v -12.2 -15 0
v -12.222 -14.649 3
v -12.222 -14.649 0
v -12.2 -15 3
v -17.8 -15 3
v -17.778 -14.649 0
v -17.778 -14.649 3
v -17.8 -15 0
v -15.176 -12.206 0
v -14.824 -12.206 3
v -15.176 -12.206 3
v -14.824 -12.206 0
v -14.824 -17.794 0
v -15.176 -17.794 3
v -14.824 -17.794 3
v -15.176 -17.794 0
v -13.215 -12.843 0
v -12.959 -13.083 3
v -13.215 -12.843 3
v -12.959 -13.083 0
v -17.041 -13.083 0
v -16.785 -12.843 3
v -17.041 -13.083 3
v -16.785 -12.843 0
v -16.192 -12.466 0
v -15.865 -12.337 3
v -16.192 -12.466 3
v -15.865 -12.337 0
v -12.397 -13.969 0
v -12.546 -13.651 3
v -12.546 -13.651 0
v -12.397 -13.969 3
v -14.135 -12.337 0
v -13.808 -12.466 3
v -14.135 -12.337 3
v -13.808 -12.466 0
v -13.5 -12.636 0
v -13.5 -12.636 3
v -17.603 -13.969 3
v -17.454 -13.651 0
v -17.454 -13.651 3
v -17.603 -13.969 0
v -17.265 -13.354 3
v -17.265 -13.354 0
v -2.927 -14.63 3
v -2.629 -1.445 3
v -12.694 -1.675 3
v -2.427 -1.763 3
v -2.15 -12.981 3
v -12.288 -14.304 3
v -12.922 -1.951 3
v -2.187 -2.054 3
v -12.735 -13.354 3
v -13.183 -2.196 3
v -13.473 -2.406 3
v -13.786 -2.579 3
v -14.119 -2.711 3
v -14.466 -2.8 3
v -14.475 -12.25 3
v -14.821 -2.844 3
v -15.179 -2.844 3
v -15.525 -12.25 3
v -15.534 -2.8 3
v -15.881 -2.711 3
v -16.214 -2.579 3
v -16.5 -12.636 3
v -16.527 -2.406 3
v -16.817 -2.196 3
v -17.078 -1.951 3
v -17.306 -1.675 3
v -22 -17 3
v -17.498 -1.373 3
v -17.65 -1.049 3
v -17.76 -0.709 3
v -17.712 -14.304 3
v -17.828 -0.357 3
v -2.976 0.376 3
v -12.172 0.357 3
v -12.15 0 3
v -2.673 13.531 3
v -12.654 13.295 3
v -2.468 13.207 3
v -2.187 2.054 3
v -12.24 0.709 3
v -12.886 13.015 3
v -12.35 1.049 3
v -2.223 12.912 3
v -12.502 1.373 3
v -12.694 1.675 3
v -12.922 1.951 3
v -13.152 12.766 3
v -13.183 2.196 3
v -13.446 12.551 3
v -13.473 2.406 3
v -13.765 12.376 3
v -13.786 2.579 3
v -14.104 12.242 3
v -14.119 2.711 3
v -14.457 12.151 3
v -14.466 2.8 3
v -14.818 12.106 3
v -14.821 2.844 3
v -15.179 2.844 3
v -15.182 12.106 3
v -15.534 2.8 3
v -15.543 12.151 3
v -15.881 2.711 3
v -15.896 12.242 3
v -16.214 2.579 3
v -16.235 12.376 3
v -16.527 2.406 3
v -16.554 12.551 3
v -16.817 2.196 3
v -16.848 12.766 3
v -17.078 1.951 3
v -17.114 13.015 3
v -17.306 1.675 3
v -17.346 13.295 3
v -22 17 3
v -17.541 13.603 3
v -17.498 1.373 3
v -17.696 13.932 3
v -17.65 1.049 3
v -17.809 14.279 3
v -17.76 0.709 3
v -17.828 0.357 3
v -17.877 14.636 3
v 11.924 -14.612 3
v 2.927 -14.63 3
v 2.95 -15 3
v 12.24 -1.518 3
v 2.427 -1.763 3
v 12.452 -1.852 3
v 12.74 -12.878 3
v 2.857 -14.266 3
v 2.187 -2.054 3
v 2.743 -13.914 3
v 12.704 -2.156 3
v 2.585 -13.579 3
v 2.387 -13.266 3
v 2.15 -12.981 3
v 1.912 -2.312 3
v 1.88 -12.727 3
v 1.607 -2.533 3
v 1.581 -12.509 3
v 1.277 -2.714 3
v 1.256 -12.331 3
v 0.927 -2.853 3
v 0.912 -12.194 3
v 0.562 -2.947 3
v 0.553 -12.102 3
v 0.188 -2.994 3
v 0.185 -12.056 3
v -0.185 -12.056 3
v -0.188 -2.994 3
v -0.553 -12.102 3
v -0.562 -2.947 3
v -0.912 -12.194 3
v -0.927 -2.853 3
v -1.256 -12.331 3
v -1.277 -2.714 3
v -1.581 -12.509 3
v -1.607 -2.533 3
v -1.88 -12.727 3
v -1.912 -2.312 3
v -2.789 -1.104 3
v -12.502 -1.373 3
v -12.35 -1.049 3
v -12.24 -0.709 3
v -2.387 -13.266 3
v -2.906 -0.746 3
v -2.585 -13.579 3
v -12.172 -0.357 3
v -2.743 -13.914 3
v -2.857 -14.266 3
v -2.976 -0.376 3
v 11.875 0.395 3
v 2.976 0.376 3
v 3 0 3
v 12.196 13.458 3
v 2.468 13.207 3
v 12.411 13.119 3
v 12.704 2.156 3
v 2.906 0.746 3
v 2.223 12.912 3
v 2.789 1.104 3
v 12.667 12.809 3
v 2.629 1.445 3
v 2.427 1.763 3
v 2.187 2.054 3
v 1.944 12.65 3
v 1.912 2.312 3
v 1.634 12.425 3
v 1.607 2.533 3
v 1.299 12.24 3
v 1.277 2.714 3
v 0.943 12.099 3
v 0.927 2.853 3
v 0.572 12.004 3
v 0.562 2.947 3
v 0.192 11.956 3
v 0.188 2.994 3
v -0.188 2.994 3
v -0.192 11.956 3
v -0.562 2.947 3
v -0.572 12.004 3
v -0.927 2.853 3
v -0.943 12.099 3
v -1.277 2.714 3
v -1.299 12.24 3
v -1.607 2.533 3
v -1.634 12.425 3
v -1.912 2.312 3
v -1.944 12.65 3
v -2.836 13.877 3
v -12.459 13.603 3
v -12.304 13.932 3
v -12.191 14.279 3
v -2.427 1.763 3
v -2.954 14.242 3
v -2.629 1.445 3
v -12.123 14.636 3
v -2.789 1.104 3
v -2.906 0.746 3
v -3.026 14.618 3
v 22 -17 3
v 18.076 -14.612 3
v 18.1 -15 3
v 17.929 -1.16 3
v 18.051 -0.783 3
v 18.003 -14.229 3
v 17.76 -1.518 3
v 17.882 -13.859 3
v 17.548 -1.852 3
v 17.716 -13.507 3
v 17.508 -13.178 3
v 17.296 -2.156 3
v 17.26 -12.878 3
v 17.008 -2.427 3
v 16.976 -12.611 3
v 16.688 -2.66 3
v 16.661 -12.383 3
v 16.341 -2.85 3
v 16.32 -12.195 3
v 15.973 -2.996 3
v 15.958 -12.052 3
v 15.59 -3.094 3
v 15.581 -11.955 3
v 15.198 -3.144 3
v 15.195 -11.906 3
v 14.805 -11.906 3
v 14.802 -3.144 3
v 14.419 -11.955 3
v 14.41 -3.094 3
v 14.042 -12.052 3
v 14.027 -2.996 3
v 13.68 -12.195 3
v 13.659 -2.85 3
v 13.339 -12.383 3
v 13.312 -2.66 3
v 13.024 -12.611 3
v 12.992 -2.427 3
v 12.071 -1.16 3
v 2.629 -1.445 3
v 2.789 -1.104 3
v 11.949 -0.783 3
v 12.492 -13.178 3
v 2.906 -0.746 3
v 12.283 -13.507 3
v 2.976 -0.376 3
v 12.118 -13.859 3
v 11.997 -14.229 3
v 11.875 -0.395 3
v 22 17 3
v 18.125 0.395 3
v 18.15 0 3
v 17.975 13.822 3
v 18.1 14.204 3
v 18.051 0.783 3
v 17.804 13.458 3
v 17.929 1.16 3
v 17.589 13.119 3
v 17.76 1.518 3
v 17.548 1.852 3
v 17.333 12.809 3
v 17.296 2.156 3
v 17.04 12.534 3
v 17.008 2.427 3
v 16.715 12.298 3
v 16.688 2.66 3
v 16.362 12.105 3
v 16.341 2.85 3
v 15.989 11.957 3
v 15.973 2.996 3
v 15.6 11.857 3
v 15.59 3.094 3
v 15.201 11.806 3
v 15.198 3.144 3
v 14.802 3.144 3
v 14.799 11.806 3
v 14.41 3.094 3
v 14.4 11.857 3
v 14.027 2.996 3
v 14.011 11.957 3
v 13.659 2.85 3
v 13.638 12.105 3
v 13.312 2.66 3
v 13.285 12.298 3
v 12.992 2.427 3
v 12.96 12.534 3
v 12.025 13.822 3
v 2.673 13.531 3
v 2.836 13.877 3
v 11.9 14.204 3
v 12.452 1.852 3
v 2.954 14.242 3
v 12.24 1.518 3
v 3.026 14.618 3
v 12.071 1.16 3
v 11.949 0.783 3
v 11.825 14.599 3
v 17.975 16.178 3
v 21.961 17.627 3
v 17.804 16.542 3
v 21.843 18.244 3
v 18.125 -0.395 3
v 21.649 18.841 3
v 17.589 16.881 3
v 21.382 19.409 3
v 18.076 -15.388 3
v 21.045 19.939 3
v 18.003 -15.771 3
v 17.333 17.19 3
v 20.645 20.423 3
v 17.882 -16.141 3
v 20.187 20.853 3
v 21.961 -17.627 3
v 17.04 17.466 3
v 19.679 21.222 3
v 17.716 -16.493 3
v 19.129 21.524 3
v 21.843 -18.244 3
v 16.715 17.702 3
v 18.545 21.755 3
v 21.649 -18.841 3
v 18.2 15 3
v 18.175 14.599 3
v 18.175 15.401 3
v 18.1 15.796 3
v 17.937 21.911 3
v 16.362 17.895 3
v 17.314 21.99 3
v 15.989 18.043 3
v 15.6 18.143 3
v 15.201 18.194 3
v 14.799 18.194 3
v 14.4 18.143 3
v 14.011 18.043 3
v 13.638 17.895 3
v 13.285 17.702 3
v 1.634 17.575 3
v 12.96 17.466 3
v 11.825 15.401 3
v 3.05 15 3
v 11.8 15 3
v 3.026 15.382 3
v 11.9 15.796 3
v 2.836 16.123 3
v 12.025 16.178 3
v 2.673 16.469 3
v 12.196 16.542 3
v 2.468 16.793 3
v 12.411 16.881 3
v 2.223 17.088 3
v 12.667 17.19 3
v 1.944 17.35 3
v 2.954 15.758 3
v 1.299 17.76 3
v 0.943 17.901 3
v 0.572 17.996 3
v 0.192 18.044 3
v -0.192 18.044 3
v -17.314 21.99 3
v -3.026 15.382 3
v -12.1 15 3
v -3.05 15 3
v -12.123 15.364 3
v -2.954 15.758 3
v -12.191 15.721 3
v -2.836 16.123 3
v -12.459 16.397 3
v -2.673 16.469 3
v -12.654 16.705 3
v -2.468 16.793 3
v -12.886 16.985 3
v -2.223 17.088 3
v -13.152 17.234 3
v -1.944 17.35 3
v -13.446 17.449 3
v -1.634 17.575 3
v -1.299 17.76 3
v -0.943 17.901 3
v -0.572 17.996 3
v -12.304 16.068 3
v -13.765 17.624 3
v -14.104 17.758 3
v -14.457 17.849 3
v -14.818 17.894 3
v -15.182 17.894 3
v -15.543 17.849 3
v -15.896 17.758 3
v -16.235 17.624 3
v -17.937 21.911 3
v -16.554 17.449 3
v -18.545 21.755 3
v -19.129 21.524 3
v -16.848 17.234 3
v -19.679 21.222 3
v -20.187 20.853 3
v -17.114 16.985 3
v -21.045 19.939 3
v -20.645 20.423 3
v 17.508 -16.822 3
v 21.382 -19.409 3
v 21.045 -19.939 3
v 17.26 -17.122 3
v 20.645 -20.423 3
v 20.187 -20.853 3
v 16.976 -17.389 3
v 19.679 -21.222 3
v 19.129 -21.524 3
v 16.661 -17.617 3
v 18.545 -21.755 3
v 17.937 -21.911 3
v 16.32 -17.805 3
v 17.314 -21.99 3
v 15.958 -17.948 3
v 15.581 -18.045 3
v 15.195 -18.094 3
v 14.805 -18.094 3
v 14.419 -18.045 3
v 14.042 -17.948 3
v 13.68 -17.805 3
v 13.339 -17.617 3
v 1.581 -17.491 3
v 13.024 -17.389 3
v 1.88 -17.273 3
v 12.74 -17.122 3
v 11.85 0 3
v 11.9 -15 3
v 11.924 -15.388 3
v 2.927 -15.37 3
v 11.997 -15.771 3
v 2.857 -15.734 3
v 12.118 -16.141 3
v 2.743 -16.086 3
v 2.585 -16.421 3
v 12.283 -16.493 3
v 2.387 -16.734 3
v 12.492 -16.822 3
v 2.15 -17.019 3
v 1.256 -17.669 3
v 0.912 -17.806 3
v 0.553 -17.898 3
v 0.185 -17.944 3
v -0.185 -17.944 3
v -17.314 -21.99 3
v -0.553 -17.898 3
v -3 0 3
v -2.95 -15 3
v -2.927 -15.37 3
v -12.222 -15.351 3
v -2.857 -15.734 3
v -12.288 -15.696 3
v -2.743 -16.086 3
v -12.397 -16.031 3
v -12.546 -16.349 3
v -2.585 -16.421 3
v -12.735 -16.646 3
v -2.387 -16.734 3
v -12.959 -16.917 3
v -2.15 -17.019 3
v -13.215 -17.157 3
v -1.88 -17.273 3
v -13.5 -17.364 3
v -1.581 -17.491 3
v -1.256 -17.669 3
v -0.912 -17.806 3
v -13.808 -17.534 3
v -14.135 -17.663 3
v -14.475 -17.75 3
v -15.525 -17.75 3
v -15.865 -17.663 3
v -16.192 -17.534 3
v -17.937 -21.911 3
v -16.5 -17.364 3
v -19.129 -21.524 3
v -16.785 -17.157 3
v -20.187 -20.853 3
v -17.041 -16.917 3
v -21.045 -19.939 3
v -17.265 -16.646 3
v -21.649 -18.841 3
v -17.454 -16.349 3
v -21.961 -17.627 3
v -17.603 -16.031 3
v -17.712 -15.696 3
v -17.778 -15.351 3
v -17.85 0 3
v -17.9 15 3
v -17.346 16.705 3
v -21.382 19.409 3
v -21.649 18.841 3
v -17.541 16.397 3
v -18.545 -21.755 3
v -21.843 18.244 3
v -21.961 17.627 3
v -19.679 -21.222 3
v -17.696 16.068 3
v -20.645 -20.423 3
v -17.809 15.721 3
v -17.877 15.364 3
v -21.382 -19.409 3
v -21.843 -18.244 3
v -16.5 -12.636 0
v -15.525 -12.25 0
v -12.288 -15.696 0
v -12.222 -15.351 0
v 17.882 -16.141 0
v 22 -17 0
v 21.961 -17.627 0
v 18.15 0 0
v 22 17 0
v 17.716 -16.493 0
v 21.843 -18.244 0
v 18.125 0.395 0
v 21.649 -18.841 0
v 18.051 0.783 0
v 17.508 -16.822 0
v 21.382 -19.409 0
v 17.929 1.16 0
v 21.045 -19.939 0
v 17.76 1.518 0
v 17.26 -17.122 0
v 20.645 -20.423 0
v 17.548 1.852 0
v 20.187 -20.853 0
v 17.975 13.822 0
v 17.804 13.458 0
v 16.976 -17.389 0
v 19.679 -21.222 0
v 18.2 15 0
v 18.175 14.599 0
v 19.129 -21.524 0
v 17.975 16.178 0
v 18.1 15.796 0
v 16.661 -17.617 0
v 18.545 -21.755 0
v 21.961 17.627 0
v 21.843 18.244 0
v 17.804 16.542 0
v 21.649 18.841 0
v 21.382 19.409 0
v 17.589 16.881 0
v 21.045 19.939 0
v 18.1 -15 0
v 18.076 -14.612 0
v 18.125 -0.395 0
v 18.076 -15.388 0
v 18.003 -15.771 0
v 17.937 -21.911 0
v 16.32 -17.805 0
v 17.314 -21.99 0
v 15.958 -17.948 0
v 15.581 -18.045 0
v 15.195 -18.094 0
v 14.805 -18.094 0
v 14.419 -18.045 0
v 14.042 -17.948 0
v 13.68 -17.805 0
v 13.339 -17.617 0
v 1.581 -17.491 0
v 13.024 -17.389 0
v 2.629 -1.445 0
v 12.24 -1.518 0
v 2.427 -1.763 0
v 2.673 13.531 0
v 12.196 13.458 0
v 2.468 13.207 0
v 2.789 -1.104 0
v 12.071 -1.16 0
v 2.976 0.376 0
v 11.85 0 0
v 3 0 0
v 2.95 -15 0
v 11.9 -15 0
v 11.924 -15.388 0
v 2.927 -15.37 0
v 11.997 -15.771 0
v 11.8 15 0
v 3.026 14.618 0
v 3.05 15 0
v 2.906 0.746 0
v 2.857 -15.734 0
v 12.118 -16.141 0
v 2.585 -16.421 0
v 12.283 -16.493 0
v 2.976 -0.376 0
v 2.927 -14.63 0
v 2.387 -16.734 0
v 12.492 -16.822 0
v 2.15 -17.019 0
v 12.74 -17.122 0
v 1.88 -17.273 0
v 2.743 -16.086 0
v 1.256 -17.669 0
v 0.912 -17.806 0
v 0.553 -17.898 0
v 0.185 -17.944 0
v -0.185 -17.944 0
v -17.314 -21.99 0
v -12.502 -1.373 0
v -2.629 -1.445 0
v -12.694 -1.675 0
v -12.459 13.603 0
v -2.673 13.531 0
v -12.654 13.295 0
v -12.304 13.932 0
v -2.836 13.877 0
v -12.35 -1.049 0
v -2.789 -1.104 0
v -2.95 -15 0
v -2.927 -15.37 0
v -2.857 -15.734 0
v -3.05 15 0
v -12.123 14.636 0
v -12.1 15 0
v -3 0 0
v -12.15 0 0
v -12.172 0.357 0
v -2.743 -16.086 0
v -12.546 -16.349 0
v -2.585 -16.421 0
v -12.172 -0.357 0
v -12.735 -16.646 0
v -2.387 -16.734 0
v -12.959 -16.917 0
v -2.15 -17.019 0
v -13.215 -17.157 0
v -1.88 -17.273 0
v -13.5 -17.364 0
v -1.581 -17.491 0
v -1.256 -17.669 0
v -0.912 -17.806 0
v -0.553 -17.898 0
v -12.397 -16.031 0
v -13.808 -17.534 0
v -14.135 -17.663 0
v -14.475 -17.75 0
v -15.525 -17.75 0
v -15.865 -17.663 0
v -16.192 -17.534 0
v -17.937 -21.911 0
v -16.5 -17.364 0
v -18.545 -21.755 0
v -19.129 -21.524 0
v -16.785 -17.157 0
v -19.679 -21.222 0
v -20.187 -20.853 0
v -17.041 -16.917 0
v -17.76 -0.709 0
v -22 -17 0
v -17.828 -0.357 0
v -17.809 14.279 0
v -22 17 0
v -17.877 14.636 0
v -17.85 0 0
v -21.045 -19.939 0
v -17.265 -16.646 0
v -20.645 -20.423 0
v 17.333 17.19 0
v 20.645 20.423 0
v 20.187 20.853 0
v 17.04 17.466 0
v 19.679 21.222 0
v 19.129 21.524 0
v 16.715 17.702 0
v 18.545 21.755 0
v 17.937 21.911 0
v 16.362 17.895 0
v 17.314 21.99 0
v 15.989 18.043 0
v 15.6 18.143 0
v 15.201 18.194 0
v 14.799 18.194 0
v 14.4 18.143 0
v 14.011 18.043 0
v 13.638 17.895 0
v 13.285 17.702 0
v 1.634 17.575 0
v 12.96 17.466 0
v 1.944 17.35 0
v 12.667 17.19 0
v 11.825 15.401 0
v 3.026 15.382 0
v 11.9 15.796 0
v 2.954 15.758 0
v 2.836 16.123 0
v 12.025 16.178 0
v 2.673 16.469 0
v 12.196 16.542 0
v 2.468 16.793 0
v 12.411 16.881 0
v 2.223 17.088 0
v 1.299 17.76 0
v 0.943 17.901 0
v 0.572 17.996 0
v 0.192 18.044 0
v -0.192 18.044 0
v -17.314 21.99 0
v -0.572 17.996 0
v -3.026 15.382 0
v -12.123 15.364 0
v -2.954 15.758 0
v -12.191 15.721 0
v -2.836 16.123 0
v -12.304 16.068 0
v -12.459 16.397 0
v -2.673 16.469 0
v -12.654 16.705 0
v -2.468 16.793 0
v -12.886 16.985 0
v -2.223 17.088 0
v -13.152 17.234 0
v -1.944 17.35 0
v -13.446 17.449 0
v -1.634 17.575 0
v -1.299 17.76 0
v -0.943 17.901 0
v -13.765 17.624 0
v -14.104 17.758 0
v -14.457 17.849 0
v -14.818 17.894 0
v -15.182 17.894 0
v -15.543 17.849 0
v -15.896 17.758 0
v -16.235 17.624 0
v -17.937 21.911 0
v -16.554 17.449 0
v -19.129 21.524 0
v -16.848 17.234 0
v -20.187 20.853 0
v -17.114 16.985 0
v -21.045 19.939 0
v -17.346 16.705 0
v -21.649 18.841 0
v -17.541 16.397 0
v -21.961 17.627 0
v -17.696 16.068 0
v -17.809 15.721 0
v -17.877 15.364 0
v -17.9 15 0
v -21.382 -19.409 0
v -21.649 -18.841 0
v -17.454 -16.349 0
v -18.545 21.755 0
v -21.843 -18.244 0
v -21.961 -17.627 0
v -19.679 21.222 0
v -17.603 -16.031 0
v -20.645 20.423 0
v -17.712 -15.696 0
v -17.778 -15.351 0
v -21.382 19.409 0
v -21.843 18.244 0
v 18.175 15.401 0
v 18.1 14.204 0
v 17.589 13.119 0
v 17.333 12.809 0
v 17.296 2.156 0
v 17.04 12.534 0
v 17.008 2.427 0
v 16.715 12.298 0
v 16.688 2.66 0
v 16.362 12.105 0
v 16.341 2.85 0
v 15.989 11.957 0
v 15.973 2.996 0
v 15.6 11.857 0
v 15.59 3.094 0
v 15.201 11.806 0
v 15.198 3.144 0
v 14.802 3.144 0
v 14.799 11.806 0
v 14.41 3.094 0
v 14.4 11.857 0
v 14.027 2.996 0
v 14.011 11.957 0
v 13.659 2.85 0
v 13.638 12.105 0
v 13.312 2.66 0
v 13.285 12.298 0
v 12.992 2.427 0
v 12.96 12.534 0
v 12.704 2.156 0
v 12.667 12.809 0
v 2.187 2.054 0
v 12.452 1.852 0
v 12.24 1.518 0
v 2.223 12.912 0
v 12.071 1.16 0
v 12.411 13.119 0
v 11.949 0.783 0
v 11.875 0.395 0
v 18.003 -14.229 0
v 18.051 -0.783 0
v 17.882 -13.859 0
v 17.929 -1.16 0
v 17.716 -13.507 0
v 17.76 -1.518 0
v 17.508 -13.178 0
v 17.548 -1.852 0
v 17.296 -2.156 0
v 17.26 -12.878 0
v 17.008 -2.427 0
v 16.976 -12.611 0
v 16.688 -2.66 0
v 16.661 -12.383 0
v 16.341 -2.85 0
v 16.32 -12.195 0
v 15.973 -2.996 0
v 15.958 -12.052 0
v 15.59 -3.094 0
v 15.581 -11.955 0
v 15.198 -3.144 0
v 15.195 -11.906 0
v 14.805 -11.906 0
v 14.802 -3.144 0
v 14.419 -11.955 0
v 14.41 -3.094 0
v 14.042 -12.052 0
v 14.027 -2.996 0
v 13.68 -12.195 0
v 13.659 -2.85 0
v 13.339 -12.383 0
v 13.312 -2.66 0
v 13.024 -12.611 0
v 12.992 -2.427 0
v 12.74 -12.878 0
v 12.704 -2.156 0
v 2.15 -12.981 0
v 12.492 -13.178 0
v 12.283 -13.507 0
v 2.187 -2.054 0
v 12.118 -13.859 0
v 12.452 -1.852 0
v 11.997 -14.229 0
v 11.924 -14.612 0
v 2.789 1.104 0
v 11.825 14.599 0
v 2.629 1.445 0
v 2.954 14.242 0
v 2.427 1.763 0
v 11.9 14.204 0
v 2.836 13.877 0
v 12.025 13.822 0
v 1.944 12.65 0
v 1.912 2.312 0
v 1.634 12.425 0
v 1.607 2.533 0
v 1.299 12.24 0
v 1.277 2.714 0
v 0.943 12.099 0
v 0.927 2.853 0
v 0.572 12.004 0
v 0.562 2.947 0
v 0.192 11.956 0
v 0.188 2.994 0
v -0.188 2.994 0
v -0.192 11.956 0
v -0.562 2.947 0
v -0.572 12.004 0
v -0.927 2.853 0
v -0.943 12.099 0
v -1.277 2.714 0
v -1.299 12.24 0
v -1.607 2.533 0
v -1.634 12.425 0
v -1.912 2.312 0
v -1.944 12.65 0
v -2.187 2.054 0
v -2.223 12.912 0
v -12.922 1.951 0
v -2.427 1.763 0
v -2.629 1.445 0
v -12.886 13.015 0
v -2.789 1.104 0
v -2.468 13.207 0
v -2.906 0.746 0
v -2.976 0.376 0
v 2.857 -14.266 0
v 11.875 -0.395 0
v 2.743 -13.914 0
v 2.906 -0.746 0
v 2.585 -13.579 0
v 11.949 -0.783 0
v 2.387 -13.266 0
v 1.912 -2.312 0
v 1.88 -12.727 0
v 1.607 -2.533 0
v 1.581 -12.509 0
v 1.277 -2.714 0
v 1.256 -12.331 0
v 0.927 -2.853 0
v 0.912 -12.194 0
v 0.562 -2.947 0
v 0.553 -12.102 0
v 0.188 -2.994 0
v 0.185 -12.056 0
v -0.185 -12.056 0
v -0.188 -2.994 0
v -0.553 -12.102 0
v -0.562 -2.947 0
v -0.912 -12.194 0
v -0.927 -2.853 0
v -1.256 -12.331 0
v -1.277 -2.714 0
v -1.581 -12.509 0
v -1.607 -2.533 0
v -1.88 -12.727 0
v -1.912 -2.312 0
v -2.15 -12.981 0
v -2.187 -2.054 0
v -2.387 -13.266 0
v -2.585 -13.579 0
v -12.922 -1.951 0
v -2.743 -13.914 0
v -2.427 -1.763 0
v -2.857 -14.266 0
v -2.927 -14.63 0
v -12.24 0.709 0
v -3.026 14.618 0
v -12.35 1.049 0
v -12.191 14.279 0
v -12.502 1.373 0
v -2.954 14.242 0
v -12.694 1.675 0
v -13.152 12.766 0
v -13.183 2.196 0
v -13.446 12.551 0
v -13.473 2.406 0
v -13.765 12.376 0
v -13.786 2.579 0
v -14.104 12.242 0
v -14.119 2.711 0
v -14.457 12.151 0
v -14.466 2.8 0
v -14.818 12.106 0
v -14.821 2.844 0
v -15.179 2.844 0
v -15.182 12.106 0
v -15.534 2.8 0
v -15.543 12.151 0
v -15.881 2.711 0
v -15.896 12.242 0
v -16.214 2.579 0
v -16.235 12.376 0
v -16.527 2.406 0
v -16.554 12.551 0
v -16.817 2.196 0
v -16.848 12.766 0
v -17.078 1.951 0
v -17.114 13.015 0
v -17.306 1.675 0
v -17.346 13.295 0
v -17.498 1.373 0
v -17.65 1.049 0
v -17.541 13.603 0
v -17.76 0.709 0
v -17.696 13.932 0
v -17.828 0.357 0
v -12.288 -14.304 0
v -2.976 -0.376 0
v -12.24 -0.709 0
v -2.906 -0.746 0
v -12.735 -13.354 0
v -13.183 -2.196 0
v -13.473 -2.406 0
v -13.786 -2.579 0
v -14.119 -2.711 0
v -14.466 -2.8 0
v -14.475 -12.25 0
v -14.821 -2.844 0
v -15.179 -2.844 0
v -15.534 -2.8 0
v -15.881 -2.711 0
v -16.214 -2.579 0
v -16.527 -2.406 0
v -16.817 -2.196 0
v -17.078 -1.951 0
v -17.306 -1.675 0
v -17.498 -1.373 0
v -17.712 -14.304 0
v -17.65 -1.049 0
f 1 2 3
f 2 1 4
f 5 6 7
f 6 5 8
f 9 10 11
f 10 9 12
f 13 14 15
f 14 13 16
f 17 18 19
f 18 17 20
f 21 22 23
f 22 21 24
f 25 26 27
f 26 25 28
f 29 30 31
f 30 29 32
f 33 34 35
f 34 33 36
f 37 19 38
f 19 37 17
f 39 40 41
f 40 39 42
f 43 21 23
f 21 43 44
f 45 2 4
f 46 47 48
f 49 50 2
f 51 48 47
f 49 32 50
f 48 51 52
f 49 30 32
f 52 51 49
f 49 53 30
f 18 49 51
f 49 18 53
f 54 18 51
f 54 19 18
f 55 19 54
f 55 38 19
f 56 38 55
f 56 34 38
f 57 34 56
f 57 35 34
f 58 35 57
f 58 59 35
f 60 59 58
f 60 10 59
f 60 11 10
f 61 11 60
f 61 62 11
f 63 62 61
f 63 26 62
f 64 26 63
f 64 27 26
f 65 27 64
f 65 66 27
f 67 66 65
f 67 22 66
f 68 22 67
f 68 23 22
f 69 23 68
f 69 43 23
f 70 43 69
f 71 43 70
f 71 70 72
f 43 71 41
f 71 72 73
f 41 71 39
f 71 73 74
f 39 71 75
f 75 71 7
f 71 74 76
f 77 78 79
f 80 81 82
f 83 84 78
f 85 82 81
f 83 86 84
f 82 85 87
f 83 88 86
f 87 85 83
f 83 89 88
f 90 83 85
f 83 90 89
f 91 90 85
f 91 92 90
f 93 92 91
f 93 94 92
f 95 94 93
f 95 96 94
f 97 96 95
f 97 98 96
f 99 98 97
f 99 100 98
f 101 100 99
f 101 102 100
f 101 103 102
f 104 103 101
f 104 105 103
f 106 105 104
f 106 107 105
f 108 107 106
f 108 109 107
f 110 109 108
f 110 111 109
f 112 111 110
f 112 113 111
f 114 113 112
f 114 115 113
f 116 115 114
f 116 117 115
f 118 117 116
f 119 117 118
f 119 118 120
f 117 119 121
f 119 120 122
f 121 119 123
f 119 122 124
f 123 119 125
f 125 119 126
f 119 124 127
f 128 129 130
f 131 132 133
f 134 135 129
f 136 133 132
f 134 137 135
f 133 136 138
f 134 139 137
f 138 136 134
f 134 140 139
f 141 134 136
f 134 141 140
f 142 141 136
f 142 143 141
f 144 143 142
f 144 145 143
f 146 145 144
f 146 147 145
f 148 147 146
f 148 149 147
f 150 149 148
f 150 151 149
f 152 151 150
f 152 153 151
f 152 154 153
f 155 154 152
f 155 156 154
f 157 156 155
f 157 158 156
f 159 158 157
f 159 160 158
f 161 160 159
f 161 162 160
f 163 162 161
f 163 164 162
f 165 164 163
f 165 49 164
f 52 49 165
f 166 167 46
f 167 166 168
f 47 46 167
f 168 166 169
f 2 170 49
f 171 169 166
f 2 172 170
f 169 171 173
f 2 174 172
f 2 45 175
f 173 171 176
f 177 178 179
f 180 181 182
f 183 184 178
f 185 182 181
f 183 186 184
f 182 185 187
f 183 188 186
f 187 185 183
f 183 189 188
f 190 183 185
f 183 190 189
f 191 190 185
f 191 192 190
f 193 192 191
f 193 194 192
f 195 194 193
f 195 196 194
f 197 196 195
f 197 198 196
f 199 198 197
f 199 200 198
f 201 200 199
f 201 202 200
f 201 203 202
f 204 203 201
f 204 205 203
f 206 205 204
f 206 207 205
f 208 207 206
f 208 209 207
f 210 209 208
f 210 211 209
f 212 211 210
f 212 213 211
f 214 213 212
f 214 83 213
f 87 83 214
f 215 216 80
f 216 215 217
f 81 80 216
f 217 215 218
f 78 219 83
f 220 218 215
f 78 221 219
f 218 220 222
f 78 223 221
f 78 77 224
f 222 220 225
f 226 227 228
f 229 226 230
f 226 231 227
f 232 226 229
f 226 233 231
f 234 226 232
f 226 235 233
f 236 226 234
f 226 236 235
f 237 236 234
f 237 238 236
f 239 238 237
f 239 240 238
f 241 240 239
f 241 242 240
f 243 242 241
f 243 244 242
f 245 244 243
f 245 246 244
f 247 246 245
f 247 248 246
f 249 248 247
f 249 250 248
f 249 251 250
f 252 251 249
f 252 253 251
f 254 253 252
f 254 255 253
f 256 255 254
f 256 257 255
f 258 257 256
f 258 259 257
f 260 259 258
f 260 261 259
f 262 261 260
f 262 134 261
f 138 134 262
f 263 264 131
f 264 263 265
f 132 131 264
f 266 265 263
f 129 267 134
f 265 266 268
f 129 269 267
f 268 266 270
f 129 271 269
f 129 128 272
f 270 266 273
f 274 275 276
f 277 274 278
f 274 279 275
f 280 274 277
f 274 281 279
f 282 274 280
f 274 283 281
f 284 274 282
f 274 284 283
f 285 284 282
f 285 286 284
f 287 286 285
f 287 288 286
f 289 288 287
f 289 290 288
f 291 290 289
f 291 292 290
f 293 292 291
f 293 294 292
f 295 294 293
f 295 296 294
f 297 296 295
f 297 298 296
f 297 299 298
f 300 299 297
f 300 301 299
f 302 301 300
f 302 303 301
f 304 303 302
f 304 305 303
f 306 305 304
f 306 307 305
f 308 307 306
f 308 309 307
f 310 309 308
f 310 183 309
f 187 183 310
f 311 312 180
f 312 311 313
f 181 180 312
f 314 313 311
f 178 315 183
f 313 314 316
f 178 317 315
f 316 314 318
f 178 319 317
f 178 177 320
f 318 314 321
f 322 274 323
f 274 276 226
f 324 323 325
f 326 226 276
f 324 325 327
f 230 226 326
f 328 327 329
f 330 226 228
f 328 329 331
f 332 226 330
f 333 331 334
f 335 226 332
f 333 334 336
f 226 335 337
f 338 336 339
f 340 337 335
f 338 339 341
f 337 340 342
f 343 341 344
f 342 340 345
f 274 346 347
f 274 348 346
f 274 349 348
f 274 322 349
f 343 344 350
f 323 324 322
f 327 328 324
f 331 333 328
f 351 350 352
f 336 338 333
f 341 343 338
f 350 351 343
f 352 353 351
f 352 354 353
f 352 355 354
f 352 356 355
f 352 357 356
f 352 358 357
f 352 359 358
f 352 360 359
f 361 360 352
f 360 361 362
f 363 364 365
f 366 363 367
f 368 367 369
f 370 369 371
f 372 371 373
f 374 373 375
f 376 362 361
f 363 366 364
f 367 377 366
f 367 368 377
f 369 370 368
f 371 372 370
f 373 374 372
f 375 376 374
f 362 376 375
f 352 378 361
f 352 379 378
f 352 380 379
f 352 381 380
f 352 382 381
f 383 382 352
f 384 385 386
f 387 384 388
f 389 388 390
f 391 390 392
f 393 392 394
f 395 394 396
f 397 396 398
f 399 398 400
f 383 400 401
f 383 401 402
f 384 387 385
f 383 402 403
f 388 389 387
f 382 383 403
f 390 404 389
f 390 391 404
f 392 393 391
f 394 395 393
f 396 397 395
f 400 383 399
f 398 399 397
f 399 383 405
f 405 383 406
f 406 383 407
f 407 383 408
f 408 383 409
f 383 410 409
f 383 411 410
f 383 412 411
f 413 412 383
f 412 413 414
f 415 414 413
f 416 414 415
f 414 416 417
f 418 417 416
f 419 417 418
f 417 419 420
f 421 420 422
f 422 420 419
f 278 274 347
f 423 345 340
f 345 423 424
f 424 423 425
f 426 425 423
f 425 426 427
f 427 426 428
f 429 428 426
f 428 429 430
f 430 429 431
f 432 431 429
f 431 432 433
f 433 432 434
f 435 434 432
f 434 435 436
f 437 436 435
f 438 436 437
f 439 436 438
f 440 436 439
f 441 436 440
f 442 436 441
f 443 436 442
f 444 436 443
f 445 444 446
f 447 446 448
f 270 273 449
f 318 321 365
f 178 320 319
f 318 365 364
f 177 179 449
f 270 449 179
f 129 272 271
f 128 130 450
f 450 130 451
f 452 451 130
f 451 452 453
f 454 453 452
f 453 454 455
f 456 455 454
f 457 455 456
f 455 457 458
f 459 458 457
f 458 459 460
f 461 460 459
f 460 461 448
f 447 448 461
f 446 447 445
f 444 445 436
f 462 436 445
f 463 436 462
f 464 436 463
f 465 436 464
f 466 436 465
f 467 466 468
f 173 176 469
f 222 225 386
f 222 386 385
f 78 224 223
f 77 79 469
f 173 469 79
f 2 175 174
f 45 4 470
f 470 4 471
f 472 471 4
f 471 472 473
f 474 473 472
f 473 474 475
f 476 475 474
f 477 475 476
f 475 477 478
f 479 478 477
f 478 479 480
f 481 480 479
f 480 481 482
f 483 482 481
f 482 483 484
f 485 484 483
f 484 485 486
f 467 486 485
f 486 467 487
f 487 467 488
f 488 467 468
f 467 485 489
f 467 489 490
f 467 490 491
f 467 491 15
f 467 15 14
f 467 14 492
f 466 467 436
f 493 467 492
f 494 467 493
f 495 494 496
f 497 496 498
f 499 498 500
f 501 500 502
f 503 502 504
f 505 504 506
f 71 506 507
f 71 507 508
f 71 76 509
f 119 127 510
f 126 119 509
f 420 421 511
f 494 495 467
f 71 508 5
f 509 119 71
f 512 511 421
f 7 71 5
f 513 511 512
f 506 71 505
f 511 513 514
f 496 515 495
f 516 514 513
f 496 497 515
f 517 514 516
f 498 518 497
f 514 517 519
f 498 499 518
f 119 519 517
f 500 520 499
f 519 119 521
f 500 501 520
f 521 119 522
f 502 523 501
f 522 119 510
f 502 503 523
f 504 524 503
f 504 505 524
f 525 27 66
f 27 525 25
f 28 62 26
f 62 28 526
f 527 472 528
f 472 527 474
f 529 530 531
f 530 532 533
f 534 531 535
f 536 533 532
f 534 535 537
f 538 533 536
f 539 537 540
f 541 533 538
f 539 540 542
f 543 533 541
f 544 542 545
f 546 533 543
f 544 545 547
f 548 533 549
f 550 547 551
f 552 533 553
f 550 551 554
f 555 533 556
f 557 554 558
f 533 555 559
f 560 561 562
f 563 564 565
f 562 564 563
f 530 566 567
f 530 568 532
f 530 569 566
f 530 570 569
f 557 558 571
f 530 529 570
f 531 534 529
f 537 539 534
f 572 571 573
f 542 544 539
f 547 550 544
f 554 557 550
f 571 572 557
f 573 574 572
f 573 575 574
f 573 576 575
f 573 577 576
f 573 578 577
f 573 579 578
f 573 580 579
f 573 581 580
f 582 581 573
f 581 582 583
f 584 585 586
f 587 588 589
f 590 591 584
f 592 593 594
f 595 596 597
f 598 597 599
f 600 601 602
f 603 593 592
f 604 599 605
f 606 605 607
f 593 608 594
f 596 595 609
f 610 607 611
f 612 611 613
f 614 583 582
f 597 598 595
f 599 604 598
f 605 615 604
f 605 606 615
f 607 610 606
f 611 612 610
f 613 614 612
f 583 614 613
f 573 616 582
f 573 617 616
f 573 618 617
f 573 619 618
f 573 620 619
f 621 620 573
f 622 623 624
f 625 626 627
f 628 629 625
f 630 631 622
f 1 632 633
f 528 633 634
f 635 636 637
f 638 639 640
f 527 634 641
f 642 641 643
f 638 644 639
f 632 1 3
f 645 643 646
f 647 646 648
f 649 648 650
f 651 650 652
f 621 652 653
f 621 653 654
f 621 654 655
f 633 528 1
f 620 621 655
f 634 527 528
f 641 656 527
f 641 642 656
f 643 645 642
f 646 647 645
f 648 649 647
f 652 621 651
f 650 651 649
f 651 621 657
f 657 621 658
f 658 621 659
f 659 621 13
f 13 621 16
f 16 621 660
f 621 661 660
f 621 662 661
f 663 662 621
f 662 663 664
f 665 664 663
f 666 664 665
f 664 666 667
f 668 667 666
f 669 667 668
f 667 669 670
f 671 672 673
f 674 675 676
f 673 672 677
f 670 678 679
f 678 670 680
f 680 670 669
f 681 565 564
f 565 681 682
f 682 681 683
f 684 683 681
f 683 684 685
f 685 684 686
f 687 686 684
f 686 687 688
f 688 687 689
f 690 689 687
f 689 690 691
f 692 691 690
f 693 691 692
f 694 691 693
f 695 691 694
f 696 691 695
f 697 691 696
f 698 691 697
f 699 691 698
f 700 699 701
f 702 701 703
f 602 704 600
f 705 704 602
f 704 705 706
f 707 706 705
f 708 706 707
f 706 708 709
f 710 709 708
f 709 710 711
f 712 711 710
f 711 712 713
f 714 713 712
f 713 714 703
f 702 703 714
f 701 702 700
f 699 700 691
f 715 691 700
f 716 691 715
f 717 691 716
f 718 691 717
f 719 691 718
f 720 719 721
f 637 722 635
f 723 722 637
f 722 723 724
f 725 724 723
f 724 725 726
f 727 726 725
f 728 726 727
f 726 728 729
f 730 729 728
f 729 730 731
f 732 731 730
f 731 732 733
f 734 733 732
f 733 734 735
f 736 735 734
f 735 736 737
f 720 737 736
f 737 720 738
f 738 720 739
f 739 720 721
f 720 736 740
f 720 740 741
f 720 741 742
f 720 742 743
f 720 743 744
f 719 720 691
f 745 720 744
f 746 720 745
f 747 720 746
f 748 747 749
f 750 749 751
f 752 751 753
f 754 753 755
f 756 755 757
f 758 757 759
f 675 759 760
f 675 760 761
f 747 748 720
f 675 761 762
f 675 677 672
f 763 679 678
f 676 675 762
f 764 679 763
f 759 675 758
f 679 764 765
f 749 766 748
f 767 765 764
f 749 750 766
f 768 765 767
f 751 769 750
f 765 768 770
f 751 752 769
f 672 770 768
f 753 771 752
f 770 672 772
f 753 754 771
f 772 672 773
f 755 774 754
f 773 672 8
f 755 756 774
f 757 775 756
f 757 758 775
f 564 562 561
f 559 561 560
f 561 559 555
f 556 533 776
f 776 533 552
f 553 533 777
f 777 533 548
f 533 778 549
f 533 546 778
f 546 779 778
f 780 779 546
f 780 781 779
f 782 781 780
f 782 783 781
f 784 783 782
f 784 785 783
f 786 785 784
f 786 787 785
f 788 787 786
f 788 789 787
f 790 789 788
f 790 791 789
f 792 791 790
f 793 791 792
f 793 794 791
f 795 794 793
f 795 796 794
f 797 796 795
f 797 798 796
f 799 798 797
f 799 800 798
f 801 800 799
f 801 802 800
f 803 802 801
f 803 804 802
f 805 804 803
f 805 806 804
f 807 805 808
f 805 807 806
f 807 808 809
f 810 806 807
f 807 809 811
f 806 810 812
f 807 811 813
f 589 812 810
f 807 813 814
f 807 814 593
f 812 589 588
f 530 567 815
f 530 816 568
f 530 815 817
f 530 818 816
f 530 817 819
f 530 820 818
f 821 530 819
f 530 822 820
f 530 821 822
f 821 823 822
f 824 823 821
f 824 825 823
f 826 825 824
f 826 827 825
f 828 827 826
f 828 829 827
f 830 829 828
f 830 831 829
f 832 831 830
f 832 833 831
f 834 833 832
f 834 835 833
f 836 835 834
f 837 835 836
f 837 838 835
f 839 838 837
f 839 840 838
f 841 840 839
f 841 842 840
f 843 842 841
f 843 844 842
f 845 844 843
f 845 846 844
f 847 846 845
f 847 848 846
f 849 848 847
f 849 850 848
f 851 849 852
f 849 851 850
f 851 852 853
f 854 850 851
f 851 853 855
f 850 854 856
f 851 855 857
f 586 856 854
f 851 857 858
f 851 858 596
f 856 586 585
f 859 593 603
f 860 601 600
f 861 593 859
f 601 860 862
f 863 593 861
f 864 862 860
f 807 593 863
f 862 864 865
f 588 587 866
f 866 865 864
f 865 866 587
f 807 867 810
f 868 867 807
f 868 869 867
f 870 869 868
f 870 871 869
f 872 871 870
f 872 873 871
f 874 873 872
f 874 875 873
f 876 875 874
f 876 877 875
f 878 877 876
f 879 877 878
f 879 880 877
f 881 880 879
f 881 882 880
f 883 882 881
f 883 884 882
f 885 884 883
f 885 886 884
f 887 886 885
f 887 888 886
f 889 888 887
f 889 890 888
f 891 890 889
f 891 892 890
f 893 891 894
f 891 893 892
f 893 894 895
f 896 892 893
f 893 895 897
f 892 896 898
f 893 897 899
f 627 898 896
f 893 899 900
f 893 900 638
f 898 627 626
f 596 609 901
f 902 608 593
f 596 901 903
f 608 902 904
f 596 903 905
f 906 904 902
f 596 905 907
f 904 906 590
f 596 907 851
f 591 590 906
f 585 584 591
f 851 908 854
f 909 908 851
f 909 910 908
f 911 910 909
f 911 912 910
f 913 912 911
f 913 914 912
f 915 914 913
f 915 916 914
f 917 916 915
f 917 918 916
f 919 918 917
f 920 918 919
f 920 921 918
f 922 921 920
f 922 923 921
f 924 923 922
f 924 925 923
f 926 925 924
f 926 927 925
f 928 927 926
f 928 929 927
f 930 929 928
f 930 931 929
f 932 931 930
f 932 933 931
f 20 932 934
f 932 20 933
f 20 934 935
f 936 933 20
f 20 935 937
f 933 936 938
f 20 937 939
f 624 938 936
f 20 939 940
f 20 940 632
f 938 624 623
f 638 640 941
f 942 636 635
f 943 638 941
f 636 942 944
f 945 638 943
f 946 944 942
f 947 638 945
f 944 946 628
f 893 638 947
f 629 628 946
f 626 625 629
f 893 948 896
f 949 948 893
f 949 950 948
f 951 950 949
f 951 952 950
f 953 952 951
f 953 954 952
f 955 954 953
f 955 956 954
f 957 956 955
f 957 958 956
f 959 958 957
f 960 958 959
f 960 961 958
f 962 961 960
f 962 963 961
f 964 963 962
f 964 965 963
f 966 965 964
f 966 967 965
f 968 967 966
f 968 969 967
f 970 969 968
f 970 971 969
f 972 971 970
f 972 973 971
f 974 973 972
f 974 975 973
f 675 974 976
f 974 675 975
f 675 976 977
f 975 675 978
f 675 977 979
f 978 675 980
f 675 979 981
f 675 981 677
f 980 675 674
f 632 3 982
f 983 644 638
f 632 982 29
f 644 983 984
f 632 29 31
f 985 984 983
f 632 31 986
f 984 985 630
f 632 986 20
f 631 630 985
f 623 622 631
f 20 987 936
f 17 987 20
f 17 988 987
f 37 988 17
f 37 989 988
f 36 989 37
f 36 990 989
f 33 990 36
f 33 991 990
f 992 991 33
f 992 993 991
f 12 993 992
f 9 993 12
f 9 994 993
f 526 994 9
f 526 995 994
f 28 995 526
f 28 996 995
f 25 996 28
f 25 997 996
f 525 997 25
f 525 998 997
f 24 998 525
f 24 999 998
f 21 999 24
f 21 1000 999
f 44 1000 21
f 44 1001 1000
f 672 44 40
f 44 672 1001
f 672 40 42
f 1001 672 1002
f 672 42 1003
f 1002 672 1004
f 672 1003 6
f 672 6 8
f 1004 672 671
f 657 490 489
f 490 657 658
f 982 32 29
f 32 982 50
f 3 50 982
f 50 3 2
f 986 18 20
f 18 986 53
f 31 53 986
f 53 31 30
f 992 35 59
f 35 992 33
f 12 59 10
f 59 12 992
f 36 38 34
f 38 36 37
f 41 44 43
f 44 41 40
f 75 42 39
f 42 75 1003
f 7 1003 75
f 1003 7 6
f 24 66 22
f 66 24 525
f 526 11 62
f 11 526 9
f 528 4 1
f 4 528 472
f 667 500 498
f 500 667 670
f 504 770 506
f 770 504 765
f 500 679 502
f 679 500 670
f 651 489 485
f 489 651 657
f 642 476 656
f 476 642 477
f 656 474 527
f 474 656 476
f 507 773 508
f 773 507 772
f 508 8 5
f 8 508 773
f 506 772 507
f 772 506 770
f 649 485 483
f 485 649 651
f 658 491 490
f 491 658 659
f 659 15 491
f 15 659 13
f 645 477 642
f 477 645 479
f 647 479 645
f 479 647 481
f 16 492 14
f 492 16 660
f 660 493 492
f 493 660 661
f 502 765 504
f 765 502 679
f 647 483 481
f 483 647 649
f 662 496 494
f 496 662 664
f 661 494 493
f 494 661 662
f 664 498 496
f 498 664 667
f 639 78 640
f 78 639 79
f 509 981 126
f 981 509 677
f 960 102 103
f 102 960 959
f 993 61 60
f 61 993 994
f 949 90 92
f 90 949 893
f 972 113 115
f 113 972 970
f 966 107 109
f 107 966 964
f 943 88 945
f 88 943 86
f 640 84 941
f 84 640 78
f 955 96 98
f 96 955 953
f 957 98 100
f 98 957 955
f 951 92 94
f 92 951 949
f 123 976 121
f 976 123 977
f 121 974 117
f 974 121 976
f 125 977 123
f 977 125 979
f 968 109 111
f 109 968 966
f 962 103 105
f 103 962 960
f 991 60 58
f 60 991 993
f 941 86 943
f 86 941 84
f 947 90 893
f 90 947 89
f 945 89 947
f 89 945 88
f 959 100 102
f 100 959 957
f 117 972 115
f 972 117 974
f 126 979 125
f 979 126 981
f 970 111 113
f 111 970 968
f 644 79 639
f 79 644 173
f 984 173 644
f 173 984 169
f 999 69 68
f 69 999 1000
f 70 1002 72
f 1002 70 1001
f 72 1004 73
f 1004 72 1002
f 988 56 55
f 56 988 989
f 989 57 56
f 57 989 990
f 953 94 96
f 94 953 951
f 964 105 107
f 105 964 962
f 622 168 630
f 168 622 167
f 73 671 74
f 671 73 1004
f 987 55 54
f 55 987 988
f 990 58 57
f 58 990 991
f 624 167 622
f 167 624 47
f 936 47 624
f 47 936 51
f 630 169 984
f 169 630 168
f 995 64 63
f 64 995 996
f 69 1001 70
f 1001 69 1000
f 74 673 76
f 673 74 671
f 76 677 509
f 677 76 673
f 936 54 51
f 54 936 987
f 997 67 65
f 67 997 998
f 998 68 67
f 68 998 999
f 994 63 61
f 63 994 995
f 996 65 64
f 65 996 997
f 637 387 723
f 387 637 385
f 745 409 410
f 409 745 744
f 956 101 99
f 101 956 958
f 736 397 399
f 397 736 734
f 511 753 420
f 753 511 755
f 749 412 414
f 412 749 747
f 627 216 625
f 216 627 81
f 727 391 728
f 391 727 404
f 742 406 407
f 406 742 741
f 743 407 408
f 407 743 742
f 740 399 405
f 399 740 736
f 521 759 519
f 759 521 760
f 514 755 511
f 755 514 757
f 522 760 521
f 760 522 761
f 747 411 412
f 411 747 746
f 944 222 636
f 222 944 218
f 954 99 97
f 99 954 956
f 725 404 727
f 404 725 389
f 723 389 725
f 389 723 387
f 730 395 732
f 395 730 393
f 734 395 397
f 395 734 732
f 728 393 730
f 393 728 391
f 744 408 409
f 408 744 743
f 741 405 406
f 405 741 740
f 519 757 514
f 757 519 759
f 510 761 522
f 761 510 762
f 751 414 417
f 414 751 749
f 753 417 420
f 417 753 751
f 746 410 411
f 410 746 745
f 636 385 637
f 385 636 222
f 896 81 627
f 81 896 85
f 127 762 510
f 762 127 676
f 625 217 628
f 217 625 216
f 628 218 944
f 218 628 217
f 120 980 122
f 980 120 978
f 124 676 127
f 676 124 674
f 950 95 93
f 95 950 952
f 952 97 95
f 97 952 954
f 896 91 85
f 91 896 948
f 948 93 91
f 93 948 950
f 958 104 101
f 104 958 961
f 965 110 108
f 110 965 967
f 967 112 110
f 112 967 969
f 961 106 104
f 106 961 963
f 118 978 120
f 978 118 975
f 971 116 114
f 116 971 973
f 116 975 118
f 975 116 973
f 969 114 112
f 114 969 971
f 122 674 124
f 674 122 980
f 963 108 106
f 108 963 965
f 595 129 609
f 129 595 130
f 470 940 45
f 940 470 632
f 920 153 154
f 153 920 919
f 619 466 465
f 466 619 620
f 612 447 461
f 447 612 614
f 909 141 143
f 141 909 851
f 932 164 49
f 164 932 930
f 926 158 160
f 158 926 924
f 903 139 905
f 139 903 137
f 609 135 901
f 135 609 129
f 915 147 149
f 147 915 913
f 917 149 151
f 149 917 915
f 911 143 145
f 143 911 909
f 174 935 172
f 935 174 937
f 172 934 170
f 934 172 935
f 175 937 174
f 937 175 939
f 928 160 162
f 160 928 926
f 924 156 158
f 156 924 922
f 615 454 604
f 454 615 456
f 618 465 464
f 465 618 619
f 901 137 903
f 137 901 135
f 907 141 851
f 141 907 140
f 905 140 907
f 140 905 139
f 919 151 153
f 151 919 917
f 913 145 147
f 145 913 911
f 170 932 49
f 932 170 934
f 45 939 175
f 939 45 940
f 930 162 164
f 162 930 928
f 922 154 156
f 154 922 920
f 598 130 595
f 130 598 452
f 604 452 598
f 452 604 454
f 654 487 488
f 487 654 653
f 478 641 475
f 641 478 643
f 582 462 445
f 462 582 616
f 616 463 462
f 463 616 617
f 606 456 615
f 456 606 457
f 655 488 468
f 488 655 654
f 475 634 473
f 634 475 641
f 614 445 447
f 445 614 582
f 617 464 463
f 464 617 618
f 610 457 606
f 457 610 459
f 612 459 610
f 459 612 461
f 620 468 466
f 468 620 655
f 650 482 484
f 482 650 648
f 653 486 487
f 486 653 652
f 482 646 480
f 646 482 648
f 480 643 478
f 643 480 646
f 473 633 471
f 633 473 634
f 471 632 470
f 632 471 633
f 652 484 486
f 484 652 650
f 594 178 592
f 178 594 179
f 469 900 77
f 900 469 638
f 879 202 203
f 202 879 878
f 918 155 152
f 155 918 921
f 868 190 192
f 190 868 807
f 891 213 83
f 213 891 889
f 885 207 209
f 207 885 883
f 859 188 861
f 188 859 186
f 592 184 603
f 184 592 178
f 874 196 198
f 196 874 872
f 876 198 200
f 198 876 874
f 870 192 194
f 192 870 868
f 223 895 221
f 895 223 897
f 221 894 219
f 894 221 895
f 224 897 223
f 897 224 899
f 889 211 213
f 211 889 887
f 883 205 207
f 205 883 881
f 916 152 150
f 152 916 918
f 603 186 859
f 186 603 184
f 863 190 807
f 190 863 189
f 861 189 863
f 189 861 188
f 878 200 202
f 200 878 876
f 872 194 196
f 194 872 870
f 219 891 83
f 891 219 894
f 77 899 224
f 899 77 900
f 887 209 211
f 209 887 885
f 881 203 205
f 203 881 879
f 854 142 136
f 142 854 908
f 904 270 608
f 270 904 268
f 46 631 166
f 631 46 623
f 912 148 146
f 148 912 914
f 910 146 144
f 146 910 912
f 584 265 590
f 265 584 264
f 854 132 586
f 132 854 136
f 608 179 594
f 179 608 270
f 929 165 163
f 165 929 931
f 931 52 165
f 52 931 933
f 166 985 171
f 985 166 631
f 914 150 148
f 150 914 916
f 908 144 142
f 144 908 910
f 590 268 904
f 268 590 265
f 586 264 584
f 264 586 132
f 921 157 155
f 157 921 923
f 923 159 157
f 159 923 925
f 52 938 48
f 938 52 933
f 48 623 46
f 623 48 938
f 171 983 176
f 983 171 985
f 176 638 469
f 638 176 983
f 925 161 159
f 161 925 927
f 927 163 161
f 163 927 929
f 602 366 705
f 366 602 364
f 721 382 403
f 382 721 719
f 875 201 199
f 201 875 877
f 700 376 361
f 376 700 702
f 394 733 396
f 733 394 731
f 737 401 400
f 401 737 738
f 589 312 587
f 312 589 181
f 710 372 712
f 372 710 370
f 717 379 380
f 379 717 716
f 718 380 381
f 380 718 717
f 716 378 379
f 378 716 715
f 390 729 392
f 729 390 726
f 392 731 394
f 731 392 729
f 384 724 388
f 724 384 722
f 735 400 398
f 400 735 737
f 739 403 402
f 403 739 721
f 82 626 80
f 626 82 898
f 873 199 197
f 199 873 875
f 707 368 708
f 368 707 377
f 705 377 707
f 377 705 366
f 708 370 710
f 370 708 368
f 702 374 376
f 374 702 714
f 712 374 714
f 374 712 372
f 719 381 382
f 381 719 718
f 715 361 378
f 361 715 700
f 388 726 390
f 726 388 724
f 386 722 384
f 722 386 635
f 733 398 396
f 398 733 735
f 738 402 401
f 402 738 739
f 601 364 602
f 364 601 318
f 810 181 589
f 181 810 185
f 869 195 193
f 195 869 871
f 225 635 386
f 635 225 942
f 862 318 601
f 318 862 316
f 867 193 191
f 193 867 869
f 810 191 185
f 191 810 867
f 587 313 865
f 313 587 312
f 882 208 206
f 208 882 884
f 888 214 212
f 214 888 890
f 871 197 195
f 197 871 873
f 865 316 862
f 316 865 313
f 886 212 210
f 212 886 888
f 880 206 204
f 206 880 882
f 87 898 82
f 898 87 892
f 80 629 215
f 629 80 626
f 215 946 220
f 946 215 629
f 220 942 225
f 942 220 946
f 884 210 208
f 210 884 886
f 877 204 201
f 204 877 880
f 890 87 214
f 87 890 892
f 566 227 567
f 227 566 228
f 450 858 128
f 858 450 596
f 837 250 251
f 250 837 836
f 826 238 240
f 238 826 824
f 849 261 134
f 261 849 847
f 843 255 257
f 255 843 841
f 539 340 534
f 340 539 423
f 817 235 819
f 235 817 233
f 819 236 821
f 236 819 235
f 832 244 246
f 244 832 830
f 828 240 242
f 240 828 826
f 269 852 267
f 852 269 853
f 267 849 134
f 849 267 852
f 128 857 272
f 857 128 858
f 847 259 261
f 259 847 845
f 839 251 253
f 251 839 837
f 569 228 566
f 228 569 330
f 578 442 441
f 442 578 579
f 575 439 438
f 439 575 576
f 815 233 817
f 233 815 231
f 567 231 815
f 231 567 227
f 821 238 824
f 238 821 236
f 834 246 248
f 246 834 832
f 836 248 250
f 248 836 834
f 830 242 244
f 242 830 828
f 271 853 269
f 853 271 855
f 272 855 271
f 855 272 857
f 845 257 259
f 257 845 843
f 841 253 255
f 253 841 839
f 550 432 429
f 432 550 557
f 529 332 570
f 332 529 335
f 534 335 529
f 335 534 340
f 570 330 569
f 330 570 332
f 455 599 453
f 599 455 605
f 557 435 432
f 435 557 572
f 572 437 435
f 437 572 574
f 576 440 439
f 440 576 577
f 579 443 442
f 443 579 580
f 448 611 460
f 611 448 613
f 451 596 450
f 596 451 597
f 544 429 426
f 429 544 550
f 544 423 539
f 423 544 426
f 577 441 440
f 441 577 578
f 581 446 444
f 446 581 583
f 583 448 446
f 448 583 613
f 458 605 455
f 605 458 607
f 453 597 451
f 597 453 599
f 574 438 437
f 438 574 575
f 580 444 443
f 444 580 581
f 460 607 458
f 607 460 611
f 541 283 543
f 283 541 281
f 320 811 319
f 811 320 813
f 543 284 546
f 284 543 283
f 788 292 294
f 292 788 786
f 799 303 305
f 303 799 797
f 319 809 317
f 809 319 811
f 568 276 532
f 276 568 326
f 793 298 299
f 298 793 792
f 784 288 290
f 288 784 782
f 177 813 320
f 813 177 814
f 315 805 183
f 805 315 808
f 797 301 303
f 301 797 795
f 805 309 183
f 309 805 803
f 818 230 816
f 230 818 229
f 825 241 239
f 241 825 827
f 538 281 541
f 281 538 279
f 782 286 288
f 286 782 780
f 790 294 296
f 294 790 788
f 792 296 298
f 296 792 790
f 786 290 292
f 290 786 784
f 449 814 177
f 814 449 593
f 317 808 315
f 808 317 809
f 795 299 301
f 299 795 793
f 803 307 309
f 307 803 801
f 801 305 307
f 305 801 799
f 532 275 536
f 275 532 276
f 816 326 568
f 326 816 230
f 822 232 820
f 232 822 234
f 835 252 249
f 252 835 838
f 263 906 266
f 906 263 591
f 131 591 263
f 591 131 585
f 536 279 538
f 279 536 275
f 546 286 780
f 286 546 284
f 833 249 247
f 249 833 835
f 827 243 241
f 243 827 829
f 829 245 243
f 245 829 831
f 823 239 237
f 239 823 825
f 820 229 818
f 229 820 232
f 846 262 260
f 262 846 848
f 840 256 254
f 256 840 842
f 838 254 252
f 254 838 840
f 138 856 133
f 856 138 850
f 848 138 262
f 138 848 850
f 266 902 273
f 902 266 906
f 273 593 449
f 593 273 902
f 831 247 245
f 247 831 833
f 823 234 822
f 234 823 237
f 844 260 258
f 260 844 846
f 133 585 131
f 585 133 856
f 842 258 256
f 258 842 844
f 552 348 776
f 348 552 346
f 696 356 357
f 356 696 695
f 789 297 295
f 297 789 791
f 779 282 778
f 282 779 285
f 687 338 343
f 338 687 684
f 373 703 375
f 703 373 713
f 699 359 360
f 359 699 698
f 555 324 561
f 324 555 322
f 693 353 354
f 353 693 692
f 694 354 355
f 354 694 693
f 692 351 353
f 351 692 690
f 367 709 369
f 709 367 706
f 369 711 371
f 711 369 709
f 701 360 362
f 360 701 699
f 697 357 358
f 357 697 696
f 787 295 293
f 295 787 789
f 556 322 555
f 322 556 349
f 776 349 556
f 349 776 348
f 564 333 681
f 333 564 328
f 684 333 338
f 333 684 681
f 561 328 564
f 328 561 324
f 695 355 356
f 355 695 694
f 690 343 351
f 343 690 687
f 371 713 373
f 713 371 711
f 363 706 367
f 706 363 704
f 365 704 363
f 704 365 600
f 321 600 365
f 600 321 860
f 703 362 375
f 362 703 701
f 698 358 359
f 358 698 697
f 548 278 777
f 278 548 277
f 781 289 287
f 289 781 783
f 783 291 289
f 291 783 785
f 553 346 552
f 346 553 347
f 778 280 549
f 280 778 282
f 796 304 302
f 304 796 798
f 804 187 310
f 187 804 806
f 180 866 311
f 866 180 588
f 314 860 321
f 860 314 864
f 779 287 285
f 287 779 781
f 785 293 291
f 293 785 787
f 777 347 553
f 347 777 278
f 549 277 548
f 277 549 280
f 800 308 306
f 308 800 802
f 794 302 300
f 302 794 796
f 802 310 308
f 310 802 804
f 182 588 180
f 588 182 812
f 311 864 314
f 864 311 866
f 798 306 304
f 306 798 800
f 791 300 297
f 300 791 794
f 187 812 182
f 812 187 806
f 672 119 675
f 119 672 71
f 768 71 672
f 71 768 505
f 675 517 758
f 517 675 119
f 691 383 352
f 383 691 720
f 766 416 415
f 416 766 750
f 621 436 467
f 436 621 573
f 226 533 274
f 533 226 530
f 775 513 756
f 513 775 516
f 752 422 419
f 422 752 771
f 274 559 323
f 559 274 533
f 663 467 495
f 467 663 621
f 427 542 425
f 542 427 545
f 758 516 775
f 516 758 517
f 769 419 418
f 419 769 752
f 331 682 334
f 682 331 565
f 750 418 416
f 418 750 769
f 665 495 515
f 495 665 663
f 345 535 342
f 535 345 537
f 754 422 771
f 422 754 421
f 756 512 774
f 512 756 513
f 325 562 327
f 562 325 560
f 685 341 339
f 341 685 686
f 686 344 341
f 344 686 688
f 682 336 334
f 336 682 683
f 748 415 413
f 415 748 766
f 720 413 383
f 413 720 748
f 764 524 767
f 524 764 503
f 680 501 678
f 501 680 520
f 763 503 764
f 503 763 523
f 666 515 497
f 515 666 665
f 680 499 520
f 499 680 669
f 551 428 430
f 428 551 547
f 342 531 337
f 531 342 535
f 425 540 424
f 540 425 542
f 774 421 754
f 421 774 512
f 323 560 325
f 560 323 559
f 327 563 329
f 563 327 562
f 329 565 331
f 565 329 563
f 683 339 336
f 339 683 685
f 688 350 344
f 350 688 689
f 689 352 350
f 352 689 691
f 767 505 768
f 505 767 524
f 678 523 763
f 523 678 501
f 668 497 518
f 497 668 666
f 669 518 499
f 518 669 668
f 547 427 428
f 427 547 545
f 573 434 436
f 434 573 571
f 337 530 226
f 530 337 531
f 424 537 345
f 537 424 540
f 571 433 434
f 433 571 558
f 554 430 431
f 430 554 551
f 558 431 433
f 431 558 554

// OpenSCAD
$fn = 50;


difference() {
	union() {
		hull() {
			translate(v = [-17.0000000000, 17.0000000000, 0]) {
				cylinder(h = 3, r = 5);
			}
			translate(v = [17.0000000000, 17.0000000000, 0]) {
				cylinder(h = 3, r = 5);
			}
			translate(v = [-17.0000000000, -17.0000000000, 0]) {
				cylinder(h = 3, r = 5);
			}
			translate(v = [17.0000000000, -17.0000000000, 0]) {
				cylinder(h = 3, r = 5);
			}
		}
	}
	union() {
		translate(v = [-15, -15, 0]) {
			cylinder(h = 3, r = 2.8000000000);
		}
		translate(v = [-15, 0, 0]) {
			cylinder(h = 3, r = 2.8500000000);
		}
		translate(v = [-15, 15, 0]) {
			cylinder(h = 3, r = 2.9000000000);
		}
		translate(v = [0, -15, 0]) {
			cylinder(h = 3, r = 2.9500000000);
		}
		cylinder(h = 3, r = 3.0000000000);
		translate(v = [0, 15, 0]) {
			cylinder(h = 3, r = 3.0500000000);
		}
		translate(v = [15, -15, 0]) {
			cylinder(h = 3, r = 3.1000000000);
		}
		translate(v = [15, 0, 0]) {
			cylinder(h = 3, r = 3.1500000000);
		}
		translate(v = [15, 15, 0]) {
			cylinder(h = 3, r = 3.2000000000);
		}
	}
}
